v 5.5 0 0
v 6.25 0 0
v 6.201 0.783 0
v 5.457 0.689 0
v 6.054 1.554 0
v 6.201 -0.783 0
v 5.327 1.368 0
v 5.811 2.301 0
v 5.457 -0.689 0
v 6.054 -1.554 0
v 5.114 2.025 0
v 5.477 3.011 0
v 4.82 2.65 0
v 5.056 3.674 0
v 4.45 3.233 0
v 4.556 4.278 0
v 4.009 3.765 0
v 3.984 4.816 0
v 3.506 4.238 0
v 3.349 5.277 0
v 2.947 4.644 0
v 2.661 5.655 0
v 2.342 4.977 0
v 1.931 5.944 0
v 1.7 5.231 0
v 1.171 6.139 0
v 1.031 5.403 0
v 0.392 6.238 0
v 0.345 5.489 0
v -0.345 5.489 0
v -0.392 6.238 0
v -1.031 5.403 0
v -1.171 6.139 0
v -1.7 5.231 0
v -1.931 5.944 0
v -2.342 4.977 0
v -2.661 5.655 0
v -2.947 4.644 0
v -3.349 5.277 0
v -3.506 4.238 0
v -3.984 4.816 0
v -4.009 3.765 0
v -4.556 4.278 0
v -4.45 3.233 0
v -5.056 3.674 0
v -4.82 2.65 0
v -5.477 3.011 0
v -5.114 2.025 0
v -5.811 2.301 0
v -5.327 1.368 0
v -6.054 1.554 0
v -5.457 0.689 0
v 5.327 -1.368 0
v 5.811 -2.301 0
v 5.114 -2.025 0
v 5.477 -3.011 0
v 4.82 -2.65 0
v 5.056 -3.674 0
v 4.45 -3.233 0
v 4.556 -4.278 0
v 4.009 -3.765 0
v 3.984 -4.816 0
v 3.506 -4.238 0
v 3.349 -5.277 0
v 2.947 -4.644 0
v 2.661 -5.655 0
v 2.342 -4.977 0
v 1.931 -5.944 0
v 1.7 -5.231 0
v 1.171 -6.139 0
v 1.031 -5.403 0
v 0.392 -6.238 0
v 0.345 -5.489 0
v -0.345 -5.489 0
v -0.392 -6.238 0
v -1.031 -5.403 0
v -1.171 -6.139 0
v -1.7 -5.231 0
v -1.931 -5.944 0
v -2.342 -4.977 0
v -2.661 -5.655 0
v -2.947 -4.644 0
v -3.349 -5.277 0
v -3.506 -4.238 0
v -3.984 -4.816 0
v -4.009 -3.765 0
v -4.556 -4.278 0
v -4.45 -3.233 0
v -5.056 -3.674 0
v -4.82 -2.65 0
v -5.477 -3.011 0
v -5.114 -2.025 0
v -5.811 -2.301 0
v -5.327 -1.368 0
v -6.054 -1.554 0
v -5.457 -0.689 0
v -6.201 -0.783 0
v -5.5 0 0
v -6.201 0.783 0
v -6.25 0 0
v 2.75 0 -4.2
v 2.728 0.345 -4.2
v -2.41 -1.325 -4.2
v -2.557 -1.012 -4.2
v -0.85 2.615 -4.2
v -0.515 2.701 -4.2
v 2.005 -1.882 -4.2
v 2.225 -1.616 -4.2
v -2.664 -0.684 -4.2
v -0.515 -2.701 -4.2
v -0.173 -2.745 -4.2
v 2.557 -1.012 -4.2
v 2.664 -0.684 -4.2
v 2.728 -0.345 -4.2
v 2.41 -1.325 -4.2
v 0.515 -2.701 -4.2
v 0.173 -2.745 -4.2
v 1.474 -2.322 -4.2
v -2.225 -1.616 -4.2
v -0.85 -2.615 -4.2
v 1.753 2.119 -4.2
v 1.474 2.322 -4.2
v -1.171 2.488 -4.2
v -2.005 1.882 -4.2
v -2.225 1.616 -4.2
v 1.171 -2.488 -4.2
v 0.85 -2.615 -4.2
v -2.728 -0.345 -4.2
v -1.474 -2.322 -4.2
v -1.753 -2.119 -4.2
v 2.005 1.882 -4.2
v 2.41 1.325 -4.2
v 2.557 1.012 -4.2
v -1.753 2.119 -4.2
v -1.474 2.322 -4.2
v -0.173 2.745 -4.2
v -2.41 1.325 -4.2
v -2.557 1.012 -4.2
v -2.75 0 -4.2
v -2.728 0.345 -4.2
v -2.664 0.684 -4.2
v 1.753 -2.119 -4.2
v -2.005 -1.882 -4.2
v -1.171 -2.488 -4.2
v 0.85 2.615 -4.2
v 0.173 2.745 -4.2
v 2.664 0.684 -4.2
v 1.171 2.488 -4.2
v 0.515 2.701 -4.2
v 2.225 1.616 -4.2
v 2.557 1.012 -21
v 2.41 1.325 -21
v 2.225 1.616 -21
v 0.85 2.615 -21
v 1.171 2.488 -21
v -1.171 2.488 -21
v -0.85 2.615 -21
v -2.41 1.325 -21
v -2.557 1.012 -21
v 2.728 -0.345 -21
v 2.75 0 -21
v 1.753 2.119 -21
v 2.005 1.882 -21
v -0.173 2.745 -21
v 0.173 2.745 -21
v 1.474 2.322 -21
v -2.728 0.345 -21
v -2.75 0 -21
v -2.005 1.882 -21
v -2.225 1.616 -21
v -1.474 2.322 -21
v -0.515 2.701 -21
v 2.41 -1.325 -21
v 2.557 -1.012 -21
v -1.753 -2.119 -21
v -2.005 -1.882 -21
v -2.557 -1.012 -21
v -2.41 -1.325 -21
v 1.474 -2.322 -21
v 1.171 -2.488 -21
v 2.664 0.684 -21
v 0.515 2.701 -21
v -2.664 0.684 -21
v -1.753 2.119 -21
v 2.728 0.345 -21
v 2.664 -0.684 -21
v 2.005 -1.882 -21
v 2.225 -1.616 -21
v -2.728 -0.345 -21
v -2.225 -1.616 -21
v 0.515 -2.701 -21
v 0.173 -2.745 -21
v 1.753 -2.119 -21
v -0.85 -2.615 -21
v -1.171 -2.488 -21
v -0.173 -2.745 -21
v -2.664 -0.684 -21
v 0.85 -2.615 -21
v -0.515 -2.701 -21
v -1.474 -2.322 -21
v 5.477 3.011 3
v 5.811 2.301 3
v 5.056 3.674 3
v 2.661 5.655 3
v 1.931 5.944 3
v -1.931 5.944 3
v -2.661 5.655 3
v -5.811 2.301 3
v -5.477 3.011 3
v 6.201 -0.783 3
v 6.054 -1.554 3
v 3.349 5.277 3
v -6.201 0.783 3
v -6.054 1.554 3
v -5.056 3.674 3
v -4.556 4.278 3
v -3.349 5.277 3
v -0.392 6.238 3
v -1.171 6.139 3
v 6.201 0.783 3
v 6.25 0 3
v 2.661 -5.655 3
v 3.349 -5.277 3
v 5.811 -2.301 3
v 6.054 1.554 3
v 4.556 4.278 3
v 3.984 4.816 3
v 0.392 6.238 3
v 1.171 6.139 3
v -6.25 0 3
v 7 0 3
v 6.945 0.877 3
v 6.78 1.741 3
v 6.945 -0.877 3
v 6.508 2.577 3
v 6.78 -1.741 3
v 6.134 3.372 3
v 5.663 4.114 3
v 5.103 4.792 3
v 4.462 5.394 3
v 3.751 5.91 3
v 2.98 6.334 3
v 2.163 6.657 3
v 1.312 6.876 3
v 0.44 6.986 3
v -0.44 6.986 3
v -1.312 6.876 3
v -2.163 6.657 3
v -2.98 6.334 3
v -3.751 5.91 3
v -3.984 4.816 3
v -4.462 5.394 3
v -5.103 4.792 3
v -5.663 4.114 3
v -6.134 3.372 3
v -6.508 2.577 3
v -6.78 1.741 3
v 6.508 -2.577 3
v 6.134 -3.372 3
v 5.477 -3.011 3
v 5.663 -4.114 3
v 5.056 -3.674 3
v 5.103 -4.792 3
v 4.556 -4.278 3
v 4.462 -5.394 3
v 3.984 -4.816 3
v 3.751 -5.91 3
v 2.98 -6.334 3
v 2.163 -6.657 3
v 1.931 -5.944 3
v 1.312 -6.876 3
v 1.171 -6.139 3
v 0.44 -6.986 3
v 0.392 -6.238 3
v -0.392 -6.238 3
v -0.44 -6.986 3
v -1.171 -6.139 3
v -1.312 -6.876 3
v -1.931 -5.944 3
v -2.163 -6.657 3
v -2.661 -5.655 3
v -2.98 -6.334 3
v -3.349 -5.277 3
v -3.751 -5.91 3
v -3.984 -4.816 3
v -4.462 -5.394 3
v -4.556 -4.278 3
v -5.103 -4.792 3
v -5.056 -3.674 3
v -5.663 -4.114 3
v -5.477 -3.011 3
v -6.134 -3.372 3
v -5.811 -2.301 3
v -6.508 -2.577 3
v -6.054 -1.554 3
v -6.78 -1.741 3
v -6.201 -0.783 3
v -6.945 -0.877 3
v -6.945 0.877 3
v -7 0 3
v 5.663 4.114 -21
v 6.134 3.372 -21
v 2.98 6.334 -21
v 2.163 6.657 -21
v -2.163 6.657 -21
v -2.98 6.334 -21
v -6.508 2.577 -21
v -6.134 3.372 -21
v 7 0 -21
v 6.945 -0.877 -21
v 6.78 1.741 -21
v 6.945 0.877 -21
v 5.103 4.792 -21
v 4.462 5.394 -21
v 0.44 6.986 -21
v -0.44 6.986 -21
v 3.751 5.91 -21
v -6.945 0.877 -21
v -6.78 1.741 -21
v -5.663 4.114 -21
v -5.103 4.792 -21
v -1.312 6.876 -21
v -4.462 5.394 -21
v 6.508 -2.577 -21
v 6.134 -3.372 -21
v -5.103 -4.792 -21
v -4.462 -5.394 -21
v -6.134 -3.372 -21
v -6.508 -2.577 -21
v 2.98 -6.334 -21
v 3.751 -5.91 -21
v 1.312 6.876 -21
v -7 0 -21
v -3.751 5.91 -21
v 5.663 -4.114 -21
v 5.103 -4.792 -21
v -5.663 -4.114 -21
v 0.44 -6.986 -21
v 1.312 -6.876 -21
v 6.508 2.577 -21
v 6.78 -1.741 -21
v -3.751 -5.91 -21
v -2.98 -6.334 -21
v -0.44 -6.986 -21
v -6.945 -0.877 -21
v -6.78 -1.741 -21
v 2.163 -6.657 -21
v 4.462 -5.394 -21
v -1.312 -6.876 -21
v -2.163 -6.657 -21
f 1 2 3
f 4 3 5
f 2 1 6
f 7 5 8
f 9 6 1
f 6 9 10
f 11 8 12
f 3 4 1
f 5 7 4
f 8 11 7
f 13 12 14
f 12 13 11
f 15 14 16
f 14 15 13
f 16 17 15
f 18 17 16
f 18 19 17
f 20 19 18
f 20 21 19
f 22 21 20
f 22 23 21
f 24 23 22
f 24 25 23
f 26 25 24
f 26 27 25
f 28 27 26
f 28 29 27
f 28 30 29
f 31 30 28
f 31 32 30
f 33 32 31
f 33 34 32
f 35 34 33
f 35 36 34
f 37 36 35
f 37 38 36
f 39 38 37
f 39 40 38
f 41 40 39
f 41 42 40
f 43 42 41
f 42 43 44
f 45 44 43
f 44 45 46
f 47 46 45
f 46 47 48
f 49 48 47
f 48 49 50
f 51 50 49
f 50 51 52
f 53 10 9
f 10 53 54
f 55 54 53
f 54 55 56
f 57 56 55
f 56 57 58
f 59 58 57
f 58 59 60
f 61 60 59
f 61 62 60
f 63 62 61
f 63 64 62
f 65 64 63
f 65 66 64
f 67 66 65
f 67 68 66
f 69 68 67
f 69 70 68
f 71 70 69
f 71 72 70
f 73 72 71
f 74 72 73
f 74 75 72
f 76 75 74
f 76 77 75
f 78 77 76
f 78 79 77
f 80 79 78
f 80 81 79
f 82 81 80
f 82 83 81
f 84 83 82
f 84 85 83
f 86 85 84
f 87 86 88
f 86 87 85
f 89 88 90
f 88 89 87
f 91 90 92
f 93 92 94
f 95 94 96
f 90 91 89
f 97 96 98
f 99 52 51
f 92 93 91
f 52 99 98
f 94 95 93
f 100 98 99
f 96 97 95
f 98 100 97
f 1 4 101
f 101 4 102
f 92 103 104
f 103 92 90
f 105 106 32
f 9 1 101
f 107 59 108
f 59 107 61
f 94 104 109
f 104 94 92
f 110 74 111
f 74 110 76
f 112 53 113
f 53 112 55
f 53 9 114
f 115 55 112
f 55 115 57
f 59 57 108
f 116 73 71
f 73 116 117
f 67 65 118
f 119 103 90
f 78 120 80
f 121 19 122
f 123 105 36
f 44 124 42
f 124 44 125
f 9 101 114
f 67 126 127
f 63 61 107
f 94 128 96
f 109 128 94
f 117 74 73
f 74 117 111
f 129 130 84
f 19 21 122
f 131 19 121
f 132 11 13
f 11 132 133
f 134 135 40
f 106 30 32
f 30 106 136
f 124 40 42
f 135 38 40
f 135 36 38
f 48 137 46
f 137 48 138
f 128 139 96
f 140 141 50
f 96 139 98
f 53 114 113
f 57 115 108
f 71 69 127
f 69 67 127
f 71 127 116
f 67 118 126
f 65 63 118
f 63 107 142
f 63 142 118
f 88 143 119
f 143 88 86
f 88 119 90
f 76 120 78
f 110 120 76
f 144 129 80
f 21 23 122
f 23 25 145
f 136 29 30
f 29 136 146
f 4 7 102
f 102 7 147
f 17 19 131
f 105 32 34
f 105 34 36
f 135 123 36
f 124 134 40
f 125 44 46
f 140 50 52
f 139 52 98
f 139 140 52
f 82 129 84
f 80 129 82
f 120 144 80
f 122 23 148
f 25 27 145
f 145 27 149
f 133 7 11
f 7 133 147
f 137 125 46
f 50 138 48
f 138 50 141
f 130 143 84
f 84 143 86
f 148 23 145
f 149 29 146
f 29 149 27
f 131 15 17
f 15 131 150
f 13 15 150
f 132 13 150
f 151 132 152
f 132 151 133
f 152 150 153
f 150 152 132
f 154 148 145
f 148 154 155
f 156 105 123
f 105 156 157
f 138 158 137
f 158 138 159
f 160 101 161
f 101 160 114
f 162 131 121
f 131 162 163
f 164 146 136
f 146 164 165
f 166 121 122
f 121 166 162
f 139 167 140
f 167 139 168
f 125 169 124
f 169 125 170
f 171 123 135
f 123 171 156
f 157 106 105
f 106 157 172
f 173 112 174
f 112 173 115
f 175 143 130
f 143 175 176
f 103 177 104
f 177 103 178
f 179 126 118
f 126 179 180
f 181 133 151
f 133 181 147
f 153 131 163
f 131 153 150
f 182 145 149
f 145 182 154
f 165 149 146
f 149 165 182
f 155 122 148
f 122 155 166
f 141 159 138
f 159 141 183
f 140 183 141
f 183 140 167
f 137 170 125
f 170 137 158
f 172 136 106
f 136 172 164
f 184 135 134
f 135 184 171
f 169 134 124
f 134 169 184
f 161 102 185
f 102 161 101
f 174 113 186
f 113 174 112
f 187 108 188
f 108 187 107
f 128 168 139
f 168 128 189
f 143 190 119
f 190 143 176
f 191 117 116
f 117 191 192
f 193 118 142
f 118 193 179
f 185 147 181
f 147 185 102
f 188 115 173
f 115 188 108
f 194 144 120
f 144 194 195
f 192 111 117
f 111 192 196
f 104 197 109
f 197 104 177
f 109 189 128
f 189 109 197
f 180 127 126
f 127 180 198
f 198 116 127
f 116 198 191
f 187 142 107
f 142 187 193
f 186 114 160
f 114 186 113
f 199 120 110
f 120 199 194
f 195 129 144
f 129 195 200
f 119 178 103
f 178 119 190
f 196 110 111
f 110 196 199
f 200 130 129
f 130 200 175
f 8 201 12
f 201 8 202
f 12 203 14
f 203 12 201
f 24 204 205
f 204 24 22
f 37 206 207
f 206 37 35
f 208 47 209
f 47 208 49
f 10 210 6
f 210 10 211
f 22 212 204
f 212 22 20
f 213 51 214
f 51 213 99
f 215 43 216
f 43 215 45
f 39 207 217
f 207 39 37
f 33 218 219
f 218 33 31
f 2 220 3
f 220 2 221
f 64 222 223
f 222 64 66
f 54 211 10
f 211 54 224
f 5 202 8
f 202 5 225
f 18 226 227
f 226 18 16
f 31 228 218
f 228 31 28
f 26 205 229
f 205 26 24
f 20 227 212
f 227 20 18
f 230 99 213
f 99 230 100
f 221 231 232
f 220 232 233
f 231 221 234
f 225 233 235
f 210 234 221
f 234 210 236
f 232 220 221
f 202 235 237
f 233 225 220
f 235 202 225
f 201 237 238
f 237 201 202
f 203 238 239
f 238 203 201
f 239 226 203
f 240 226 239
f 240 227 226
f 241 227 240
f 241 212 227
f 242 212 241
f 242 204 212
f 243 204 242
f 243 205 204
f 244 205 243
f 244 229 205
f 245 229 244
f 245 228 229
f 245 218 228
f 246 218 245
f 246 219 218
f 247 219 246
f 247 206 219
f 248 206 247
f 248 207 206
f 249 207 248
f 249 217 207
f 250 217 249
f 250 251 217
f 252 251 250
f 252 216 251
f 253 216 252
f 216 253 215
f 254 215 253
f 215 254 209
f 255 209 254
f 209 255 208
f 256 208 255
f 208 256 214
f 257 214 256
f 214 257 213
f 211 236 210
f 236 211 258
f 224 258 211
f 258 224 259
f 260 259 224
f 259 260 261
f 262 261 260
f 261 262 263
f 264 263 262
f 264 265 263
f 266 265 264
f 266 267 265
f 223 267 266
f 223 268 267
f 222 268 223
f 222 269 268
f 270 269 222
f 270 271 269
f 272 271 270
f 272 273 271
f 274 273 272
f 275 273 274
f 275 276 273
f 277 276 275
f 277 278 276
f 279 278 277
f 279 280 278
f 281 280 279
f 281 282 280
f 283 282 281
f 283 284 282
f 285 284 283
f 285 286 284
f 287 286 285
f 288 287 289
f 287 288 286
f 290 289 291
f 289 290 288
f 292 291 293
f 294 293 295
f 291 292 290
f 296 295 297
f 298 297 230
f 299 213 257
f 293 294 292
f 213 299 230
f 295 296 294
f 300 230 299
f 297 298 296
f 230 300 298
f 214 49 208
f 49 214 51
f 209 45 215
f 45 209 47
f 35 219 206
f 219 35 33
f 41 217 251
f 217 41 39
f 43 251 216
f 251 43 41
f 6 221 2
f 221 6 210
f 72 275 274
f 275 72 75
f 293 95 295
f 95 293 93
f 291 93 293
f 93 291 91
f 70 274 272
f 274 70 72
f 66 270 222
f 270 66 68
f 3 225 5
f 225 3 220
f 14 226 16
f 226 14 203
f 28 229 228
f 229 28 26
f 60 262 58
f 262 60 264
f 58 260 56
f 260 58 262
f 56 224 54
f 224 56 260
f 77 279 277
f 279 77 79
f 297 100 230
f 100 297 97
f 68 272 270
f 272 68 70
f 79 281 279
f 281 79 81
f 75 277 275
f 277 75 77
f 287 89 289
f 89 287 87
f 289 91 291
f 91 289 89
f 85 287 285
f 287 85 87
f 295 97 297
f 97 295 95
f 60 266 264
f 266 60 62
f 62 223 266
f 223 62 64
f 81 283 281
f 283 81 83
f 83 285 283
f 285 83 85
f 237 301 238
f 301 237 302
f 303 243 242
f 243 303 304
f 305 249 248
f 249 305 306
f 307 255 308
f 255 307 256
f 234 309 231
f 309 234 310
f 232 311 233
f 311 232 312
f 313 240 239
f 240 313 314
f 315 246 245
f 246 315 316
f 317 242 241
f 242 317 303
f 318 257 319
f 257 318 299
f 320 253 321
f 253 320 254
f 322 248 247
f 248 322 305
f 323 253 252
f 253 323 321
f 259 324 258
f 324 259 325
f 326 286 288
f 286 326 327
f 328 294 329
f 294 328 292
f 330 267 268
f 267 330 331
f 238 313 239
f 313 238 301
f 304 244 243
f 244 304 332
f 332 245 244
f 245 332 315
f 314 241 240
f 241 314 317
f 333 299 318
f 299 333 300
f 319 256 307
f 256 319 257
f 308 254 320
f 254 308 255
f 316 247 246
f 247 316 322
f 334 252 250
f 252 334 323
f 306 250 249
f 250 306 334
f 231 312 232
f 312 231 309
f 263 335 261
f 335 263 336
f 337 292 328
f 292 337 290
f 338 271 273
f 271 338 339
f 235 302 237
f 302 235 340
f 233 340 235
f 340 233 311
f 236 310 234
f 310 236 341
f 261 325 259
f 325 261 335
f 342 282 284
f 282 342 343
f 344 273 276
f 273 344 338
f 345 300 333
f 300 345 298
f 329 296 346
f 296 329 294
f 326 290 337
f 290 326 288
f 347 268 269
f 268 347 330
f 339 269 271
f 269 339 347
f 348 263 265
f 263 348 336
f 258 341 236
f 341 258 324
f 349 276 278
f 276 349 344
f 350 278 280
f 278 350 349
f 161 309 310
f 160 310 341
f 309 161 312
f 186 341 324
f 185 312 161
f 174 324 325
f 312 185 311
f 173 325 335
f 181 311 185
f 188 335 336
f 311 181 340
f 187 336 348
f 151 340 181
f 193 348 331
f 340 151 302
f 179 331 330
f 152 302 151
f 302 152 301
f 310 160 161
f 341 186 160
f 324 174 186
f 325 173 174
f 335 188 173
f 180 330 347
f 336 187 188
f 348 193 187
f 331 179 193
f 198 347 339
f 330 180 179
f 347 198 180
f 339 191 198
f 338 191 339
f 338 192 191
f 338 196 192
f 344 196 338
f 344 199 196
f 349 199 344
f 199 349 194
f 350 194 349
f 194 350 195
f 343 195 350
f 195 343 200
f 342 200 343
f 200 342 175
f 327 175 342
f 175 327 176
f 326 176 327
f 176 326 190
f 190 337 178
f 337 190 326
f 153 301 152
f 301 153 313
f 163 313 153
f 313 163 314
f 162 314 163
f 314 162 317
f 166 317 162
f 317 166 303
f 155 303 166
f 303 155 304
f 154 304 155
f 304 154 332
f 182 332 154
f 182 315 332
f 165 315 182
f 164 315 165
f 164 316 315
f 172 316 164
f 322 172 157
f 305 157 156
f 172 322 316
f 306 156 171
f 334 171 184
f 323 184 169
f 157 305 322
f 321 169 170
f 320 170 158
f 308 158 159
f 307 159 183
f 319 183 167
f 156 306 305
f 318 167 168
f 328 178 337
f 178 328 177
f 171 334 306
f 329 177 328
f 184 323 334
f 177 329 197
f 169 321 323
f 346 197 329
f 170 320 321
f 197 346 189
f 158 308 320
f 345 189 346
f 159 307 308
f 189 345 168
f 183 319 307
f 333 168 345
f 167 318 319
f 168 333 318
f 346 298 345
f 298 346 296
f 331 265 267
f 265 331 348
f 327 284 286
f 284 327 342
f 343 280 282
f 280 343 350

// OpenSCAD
$fn = 50;

difference() {
	union() {
		translate(v = [0, 0, -21.0]) {
			cylinder(h = 24, r = 7.0);
		}
	}
	union() {
		translate(v = [0, 0, 0]) {
			rotate(a = [0, 0, 0]) {
				difference() {
					union() {
						translate(v = [0, 0, -24.0]) {
							cylinder(h = 24, r = 2.25);
						}
						translate(v = [0, 0, -4.2]) {
							cylinder(h = 4.2, r1 = 2.75, r2 = 5.5);
						}
						translate(v = [0, 0, -24.0]) {
							cylinder(h = 24, r = 2.75);
						}
						translate(v = [0, 0, -24.0]) {
							cylinder(h = 24, r = 2.25);
						}
					}
					union();
				}
			}
		}
		#cylinder(h = 3, r = 6.25);
	}
}
